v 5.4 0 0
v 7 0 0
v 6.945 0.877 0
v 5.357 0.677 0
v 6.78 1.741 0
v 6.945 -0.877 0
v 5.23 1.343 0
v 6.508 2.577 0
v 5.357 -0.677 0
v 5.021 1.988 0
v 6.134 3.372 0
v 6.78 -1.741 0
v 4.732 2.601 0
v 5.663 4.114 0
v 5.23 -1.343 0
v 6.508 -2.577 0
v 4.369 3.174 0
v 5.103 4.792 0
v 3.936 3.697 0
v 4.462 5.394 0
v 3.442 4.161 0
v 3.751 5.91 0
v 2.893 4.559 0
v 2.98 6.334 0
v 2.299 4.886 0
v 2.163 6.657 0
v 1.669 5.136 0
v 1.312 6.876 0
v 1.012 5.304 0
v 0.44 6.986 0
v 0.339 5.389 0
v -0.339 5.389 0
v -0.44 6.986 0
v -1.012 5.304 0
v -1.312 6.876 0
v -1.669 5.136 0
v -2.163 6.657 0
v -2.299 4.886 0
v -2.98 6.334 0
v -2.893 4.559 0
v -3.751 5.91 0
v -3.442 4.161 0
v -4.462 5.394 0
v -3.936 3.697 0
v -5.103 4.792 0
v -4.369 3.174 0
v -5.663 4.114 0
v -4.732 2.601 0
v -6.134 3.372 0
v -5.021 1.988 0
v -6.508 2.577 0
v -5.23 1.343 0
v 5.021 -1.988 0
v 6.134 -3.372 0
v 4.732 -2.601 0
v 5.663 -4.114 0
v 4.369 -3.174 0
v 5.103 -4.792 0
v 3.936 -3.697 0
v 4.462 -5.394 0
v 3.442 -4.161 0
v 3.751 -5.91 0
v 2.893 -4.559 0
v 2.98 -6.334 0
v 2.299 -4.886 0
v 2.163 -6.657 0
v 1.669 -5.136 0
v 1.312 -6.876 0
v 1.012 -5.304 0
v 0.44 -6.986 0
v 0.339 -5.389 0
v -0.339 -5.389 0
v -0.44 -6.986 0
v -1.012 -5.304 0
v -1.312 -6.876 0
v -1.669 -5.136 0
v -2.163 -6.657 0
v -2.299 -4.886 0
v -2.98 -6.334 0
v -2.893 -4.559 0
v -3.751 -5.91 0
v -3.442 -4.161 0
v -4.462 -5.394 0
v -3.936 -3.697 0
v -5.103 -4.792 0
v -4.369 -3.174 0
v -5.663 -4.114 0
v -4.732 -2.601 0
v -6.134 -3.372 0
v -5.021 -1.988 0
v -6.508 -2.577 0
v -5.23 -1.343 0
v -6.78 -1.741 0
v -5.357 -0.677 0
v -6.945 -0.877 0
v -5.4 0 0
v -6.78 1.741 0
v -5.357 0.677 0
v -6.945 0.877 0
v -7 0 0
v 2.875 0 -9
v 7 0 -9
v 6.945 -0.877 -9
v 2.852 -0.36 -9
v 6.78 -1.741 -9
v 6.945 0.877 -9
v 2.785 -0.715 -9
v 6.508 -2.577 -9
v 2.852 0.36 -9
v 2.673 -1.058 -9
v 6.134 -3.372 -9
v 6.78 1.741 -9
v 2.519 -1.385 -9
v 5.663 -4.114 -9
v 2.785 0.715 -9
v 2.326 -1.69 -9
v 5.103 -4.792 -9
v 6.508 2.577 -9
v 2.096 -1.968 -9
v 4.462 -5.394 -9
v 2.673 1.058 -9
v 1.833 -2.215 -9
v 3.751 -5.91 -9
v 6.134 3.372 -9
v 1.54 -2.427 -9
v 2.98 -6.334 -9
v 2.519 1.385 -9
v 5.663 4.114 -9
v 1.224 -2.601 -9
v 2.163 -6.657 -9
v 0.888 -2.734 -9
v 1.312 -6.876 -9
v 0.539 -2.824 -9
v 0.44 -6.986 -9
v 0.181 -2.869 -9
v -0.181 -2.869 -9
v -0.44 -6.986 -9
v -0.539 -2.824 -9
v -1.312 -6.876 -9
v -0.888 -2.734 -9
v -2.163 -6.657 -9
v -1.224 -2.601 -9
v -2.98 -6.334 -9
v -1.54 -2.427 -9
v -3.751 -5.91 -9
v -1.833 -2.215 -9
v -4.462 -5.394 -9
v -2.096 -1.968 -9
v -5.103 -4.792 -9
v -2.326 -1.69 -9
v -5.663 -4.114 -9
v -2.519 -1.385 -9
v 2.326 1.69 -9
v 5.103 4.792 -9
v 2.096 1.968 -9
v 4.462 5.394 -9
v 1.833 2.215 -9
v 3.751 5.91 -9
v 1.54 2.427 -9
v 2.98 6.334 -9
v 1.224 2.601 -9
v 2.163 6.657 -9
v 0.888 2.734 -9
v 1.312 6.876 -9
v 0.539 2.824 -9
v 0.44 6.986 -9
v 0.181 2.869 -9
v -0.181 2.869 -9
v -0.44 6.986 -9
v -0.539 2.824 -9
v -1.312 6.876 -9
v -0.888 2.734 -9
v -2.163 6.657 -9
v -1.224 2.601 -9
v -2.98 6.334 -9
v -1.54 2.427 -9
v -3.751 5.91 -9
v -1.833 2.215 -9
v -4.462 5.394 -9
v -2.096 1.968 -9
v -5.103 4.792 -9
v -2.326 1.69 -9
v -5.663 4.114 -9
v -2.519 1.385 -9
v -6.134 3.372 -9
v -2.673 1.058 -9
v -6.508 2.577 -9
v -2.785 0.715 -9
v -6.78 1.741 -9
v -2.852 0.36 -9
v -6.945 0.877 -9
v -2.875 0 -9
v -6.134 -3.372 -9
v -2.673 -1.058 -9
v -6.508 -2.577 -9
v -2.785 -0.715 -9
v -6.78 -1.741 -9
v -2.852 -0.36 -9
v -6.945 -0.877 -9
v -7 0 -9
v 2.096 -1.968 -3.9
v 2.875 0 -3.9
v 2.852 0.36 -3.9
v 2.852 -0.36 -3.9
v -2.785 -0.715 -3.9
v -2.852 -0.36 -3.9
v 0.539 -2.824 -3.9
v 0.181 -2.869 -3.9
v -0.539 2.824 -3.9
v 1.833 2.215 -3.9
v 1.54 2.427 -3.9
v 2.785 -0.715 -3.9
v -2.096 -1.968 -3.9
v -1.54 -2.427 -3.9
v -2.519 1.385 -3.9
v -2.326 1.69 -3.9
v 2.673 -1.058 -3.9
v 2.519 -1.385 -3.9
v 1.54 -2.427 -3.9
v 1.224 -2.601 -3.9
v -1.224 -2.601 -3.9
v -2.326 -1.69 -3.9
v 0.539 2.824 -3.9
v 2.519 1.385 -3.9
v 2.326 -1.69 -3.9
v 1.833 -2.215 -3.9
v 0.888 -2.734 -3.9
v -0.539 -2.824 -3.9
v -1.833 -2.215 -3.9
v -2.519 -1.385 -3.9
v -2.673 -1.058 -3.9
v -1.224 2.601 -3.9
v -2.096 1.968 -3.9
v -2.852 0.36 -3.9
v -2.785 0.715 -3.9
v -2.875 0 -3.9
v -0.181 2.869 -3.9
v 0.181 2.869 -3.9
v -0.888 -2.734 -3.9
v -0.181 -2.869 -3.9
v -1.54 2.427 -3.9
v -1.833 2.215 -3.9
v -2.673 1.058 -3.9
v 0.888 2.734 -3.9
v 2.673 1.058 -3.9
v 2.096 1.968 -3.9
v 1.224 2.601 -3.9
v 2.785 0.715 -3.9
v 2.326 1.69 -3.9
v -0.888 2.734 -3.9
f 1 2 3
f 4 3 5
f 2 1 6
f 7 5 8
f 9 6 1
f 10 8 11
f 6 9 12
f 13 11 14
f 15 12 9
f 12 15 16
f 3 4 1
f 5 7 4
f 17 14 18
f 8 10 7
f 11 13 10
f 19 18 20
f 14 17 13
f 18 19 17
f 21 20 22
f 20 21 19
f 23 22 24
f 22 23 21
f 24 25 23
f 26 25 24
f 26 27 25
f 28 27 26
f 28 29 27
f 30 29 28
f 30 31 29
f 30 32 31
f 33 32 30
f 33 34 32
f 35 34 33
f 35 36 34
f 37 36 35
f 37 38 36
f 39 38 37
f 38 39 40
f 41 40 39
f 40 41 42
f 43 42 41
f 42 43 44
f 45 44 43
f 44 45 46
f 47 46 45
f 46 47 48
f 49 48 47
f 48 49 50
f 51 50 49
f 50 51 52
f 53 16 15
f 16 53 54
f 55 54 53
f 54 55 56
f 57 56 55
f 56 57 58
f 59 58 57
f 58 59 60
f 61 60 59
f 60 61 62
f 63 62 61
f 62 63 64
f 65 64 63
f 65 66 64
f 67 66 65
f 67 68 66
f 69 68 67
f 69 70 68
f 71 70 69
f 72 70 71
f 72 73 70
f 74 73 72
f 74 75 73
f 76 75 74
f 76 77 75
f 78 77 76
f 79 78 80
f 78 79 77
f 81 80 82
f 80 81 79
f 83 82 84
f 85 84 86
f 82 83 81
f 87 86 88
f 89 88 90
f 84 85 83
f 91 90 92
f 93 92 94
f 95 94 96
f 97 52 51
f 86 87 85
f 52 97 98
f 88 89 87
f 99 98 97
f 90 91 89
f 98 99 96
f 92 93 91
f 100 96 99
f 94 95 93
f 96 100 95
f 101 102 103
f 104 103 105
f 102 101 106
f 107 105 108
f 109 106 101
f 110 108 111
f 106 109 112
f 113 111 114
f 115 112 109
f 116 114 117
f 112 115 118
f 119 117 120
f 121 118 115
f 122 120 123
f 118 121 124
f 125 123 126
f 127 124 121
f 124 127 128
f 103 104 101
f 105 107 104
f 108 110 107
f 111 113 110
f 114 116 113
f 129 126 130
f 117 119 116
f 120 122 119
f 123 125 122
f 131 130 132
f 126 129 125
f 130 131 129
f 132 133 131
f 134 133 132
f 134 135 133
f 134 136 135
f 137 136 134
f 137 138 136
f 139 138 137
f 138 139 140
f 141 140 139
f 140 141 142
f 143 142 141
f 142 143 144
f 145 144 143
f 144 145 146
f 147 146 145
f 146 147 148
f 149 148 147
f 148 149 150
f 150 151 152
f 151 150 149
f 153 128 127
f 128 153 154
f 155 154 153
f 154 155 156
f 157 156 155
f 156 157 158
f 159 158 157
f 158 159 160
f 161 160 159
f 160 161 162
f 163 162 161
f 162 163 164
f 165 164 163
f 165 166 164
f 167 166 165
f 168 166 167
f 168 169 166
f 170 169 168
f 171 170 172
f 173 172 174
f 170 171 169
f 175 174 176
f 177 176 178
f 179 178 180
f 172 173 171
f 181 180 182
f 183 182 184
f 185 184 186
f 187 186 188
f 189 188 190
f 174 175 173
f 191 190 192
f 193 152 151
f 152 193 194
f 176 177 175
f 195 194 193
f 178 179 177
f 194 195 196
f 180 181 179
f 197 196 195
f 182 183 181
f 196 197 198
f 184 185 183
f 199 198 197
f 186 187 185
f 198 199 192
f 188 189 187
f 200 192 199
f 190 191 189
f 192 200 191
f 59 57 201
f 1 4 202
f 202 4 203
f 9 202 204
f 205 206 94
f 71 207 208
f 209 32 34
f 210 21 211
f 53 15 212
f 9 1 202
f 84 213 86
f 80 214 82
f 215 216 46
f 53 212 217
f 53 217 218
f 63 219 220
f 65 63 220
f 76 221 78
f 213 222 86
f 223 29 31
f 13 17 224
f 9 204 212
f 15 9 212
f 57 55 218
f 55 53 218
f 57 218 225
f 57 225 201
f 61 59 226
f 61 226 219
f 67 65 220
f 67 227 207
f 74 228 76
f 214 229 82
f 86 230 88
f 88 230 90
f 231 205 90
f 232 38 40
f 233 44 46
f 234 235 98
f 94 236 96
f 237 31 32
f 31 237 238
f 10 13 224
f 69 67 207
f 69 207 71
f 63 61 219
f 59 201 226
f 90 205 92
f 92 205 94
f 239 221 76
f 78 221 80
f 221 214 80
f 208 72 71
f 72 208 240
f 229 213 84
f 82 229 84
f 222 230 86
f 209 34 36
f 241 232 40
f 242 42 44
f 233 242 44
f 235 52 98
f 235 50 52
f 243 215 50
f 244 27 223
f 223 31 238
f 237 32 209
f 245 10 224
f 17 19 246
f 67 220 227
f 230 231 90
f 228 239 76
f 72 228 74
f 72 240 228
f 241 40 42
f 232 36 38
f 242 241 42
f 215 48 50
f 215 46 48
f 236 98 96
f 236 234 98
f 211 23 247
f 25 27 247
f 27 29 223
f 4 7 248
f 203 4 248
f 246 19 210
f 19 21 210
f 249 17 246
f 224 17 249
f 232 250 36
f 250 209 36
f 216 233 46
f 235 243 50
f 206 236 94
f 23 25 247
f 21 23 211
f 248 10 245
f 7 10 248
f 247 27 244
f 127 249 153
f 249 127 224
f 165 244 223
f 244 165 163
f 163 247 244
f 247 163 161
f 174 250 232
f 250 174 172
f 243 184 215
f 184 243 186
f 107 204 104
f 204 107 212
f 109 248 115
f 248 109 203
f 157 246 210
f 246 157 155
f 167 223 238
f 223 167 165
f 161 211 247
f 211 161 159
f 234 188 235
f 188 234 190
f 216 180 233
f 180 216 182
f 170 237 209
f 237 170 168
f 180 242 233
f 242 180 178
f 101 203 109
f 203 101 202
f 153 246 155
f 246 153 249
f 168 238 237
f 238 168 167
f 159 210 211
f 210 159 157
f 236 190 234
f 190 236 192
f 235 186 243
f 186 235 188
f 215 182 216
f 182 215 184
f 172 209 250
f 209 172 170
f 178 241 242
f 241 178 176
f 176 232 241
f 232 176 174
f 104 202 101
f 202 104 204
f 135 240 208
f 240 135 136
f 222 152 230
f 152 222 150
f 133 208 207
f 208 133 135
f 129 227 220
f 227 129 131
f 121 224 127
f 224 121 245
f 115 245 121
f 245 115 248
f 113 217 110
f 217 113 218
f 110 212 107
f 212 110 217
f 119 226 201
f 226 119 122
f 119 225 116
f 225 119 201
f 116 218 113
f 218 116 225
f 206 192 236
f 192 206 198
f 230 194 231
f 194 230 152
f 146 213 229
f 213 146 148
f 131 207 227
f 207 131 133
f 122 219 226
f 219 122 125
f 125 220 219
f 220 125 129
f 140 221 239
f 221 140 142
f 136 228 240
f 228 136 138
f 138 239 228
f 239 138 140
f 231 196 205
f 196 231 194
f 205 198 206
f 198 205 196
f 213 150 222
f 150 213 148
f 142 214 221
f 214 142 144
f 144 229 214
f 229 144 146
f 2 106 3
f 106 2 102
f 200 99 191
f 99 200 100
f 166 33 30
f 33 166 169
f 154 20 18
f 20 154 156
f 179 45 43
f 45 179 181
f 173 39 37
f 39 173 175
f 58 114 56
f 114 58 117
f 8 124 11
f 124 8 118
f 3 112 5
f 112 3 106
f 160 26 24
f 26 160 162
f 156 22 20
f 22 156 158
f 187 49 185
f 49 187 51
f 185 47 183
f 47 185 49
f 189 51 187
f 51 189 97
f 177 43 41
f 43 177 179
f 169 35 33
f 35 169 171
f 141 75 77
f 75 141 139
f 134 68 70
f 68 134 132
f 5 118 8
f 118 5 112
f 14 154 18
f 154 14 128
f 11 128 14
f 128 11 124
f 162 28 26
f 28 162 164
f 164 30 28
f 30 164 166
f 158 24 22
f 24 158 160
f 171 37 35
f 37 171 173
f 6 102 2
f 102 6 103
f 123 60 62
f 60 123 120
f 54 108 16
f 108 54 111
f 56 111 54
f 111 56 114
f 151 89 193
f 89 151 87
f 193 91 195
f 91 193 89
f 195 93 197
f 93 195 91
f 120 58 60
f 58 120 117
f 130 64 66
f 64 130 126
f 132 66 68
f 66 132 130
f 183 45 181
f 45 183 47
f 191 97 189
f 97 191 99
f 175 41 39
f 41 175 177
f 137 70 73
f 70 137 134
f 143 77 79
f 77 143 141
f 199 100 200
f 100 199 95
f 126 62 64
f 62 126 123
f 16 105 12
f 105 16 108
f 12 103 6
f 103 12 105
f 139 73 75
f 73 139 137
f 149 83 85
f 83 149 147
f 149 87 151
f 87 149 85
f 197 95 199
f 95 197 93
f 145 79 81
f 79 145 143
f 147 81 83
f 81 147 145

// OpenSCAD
$fn = 50;


difference() {
	union() {
		translate(v = [0, 0, -9.0000000000]) {
			cylinder(h = 9, r = 7.0000000000);
		}
		cylinder(h = 0, r = 10.0000000000);
	}
	union() {
		translate(v = [0, 0, 0]) {
			rotate(a = [0, 0, 0]) {
				difference() {
					union() {
						#translate(v = [0, 0, -9.0000000000]) {
							cylinder(h = 9, r = 2.6000000000);
						}
						#translate(v = [0, 0, -3.9000000000]) {
							cylinder(h = 3.9000000000, r = 7.0000000000, r1 = 2.8750000000, r2 = 5.4000000000);
						}
						#translate(v = [0, 0, -9.0000000000]) {
							cylinder(h = 9, r = 2.8750000000);
						}
						#translate(v = [0, 0, -9.0000000000]) {
							cylinder(h = 9, r = 2.6000000000);
						}
					}
					union();
				}
			}
		}
	}
}
